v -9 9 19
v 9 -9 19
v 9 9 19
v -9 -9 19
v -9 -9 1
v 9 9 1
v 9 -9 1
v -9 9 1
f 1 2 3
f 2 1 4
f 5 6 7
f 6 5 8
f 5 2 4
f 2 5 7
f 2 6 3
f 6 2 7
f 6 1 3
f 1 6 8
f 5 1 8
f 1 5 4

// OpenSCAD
// XYZ 20mm Hollow Calibration Cube

$fn=100;

cube_size = 20;
letter_size = 0.5*cube_size;
letter_height = 0.2*letter_size;


translate([0, 0, 10]) cube((cube_size-letter_height), center = true);
